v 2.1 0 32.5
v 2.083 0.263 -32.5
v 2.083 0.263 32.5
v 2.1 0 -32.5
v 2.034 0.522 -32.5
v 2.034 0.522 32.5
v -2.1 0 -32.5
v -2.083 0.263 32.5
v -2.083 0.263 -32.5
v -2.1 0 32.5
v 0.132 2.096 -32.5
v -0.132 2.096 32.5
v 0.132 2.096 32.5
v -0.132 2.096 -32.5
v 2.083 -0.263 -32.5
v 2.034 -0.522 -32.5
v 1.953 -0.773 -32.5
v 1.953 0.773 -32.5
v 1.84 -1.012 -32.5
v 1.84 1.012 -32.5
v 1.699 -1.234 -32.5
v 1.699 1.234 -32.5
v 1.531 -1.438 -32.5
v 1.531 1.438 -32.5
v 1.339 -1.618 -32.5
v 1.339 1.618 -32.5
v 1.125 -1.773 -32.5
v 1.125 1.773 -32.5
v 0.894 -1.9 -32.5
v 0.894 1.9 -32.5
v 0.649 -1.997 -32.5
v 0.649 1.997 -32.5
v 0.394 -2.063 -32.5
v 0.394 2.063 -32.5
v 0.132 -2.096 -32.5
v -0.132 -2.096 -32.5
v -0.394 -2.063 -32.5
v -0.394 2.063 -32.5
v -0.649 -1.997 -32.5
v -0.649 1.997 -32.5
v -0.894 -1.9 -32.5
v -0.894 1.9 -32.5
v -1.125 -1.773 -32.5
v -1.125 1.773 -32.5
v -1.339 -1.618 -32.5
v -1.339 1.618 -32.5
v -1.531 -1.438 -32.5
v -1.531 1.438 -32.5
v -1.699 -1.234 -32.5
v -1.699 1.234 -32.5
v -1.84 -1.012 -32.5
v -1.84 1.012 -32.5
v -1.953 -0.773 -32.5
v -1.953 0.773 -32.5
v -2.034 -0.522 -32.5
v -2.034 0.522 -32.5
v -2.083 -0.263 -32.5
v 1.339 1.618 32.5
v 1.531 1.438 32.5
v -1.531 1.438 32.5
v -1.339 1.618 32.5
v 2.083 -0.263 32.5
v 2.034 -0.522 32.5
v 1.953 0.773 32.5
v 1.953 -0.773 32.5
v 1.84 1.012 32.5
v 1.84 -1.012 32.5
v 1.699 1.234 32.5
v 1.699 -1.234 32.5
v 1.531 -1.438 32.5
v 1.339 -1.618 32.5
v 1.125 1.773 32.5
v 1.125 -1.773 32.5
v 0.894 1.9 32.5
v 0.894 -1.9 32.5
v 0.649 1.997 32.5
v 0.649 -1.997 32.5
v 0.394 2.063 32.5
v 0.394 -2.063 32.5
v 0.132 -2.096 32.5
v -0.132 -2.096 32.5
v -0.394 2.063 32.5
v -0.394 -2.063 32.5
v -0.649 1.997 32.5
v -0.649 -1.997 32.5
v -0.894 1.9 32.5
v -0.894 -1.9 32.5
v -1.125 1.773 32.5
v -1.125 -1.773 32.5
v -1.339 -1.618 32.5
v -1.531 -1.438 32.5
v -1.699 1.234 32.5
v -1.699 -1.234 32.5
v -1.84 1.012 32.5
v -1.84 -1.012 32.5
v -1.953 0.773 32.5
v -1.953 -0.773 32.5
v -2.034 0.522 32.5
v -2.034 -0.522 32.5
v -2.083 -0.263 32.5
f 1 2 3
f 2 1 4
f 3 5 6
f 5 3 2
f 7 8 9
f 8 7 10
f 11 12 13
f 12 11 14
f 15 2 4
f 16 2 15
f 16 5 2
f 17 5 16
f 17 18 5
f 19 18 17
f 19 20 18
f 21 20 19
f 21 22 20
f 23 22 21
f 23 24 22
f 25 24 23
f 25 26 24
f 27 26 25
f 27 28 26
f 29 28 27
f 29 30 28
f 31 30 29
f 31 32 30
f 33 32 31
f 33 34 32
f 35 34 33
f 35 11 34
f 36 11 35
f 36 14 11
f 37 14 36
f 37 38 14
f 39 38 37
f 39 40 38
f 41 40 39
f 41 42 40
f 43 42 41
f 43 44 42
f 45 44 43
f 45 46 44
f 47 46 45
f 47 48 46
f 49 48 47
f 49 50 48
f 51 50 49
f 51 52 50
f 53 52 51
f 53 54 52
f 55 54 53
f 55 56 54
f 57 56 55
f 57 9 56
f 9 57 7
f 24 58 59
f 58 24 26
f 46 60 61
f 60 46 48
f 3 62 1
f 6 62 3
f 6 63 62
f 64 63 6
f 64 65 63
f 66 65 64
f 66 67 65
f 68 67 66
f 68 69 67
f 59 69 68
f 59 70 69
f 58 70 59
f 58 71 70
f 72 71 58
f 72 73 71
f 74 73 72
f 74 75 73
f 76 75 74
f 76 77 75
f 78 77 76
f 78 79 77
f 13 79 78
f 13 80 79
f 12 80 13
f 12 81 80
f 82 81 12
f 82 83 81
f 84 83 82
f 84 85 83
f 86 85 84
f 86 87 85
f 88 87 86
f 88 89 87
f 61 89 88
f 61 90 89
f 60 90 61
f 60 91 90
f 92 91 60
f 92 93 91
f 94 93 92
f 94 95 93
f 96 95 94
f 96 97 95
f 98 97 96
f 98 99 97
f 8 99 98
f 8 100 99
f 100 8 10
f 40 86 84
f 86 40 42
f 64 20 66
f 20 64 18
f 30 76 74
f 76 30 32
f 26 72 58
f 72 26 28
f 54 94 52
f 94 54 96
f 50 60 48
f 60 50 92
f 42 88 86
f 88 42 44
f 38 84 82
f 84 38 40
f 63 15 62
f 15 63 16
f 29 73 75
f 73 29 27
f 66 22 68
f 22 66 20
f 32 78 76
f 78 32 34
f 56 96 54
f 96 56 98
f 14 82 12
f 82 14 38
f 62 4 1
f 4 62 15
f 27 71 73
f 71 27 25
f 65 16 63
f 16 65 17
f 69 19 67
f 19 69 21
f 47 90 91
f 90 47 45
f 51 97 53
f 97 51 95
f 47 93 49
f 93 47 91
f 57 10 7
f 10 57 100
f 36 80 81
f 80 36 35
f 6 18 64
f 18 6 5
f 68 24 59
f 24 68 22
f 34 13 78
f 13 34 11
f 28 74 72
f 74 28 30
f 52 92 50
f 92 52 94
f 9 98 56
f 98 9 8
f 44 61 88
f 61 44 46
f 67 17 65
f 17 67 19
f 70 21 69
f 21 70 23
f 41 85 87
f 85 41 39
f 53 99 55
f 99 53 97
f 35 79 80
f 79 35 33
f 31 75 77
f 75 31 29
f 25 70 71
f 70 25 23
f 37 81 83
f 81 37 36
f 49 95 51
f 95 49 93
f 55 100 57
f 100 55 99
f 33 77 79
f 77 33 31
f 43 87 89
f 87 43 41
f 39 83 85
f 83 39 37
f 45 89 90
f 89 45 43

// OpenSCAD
$fn = 50;


difference() {
	union() {
		translate(v = [0, 0, -32.5000000000]) {
			cylinder(h = 65, r = 2.1000000000);
		}
	}
	union() {
		translate(v = [0, 0, -100.0000000000]) {
			cylinder(h = 200, r = 0);
		}
	}
}
